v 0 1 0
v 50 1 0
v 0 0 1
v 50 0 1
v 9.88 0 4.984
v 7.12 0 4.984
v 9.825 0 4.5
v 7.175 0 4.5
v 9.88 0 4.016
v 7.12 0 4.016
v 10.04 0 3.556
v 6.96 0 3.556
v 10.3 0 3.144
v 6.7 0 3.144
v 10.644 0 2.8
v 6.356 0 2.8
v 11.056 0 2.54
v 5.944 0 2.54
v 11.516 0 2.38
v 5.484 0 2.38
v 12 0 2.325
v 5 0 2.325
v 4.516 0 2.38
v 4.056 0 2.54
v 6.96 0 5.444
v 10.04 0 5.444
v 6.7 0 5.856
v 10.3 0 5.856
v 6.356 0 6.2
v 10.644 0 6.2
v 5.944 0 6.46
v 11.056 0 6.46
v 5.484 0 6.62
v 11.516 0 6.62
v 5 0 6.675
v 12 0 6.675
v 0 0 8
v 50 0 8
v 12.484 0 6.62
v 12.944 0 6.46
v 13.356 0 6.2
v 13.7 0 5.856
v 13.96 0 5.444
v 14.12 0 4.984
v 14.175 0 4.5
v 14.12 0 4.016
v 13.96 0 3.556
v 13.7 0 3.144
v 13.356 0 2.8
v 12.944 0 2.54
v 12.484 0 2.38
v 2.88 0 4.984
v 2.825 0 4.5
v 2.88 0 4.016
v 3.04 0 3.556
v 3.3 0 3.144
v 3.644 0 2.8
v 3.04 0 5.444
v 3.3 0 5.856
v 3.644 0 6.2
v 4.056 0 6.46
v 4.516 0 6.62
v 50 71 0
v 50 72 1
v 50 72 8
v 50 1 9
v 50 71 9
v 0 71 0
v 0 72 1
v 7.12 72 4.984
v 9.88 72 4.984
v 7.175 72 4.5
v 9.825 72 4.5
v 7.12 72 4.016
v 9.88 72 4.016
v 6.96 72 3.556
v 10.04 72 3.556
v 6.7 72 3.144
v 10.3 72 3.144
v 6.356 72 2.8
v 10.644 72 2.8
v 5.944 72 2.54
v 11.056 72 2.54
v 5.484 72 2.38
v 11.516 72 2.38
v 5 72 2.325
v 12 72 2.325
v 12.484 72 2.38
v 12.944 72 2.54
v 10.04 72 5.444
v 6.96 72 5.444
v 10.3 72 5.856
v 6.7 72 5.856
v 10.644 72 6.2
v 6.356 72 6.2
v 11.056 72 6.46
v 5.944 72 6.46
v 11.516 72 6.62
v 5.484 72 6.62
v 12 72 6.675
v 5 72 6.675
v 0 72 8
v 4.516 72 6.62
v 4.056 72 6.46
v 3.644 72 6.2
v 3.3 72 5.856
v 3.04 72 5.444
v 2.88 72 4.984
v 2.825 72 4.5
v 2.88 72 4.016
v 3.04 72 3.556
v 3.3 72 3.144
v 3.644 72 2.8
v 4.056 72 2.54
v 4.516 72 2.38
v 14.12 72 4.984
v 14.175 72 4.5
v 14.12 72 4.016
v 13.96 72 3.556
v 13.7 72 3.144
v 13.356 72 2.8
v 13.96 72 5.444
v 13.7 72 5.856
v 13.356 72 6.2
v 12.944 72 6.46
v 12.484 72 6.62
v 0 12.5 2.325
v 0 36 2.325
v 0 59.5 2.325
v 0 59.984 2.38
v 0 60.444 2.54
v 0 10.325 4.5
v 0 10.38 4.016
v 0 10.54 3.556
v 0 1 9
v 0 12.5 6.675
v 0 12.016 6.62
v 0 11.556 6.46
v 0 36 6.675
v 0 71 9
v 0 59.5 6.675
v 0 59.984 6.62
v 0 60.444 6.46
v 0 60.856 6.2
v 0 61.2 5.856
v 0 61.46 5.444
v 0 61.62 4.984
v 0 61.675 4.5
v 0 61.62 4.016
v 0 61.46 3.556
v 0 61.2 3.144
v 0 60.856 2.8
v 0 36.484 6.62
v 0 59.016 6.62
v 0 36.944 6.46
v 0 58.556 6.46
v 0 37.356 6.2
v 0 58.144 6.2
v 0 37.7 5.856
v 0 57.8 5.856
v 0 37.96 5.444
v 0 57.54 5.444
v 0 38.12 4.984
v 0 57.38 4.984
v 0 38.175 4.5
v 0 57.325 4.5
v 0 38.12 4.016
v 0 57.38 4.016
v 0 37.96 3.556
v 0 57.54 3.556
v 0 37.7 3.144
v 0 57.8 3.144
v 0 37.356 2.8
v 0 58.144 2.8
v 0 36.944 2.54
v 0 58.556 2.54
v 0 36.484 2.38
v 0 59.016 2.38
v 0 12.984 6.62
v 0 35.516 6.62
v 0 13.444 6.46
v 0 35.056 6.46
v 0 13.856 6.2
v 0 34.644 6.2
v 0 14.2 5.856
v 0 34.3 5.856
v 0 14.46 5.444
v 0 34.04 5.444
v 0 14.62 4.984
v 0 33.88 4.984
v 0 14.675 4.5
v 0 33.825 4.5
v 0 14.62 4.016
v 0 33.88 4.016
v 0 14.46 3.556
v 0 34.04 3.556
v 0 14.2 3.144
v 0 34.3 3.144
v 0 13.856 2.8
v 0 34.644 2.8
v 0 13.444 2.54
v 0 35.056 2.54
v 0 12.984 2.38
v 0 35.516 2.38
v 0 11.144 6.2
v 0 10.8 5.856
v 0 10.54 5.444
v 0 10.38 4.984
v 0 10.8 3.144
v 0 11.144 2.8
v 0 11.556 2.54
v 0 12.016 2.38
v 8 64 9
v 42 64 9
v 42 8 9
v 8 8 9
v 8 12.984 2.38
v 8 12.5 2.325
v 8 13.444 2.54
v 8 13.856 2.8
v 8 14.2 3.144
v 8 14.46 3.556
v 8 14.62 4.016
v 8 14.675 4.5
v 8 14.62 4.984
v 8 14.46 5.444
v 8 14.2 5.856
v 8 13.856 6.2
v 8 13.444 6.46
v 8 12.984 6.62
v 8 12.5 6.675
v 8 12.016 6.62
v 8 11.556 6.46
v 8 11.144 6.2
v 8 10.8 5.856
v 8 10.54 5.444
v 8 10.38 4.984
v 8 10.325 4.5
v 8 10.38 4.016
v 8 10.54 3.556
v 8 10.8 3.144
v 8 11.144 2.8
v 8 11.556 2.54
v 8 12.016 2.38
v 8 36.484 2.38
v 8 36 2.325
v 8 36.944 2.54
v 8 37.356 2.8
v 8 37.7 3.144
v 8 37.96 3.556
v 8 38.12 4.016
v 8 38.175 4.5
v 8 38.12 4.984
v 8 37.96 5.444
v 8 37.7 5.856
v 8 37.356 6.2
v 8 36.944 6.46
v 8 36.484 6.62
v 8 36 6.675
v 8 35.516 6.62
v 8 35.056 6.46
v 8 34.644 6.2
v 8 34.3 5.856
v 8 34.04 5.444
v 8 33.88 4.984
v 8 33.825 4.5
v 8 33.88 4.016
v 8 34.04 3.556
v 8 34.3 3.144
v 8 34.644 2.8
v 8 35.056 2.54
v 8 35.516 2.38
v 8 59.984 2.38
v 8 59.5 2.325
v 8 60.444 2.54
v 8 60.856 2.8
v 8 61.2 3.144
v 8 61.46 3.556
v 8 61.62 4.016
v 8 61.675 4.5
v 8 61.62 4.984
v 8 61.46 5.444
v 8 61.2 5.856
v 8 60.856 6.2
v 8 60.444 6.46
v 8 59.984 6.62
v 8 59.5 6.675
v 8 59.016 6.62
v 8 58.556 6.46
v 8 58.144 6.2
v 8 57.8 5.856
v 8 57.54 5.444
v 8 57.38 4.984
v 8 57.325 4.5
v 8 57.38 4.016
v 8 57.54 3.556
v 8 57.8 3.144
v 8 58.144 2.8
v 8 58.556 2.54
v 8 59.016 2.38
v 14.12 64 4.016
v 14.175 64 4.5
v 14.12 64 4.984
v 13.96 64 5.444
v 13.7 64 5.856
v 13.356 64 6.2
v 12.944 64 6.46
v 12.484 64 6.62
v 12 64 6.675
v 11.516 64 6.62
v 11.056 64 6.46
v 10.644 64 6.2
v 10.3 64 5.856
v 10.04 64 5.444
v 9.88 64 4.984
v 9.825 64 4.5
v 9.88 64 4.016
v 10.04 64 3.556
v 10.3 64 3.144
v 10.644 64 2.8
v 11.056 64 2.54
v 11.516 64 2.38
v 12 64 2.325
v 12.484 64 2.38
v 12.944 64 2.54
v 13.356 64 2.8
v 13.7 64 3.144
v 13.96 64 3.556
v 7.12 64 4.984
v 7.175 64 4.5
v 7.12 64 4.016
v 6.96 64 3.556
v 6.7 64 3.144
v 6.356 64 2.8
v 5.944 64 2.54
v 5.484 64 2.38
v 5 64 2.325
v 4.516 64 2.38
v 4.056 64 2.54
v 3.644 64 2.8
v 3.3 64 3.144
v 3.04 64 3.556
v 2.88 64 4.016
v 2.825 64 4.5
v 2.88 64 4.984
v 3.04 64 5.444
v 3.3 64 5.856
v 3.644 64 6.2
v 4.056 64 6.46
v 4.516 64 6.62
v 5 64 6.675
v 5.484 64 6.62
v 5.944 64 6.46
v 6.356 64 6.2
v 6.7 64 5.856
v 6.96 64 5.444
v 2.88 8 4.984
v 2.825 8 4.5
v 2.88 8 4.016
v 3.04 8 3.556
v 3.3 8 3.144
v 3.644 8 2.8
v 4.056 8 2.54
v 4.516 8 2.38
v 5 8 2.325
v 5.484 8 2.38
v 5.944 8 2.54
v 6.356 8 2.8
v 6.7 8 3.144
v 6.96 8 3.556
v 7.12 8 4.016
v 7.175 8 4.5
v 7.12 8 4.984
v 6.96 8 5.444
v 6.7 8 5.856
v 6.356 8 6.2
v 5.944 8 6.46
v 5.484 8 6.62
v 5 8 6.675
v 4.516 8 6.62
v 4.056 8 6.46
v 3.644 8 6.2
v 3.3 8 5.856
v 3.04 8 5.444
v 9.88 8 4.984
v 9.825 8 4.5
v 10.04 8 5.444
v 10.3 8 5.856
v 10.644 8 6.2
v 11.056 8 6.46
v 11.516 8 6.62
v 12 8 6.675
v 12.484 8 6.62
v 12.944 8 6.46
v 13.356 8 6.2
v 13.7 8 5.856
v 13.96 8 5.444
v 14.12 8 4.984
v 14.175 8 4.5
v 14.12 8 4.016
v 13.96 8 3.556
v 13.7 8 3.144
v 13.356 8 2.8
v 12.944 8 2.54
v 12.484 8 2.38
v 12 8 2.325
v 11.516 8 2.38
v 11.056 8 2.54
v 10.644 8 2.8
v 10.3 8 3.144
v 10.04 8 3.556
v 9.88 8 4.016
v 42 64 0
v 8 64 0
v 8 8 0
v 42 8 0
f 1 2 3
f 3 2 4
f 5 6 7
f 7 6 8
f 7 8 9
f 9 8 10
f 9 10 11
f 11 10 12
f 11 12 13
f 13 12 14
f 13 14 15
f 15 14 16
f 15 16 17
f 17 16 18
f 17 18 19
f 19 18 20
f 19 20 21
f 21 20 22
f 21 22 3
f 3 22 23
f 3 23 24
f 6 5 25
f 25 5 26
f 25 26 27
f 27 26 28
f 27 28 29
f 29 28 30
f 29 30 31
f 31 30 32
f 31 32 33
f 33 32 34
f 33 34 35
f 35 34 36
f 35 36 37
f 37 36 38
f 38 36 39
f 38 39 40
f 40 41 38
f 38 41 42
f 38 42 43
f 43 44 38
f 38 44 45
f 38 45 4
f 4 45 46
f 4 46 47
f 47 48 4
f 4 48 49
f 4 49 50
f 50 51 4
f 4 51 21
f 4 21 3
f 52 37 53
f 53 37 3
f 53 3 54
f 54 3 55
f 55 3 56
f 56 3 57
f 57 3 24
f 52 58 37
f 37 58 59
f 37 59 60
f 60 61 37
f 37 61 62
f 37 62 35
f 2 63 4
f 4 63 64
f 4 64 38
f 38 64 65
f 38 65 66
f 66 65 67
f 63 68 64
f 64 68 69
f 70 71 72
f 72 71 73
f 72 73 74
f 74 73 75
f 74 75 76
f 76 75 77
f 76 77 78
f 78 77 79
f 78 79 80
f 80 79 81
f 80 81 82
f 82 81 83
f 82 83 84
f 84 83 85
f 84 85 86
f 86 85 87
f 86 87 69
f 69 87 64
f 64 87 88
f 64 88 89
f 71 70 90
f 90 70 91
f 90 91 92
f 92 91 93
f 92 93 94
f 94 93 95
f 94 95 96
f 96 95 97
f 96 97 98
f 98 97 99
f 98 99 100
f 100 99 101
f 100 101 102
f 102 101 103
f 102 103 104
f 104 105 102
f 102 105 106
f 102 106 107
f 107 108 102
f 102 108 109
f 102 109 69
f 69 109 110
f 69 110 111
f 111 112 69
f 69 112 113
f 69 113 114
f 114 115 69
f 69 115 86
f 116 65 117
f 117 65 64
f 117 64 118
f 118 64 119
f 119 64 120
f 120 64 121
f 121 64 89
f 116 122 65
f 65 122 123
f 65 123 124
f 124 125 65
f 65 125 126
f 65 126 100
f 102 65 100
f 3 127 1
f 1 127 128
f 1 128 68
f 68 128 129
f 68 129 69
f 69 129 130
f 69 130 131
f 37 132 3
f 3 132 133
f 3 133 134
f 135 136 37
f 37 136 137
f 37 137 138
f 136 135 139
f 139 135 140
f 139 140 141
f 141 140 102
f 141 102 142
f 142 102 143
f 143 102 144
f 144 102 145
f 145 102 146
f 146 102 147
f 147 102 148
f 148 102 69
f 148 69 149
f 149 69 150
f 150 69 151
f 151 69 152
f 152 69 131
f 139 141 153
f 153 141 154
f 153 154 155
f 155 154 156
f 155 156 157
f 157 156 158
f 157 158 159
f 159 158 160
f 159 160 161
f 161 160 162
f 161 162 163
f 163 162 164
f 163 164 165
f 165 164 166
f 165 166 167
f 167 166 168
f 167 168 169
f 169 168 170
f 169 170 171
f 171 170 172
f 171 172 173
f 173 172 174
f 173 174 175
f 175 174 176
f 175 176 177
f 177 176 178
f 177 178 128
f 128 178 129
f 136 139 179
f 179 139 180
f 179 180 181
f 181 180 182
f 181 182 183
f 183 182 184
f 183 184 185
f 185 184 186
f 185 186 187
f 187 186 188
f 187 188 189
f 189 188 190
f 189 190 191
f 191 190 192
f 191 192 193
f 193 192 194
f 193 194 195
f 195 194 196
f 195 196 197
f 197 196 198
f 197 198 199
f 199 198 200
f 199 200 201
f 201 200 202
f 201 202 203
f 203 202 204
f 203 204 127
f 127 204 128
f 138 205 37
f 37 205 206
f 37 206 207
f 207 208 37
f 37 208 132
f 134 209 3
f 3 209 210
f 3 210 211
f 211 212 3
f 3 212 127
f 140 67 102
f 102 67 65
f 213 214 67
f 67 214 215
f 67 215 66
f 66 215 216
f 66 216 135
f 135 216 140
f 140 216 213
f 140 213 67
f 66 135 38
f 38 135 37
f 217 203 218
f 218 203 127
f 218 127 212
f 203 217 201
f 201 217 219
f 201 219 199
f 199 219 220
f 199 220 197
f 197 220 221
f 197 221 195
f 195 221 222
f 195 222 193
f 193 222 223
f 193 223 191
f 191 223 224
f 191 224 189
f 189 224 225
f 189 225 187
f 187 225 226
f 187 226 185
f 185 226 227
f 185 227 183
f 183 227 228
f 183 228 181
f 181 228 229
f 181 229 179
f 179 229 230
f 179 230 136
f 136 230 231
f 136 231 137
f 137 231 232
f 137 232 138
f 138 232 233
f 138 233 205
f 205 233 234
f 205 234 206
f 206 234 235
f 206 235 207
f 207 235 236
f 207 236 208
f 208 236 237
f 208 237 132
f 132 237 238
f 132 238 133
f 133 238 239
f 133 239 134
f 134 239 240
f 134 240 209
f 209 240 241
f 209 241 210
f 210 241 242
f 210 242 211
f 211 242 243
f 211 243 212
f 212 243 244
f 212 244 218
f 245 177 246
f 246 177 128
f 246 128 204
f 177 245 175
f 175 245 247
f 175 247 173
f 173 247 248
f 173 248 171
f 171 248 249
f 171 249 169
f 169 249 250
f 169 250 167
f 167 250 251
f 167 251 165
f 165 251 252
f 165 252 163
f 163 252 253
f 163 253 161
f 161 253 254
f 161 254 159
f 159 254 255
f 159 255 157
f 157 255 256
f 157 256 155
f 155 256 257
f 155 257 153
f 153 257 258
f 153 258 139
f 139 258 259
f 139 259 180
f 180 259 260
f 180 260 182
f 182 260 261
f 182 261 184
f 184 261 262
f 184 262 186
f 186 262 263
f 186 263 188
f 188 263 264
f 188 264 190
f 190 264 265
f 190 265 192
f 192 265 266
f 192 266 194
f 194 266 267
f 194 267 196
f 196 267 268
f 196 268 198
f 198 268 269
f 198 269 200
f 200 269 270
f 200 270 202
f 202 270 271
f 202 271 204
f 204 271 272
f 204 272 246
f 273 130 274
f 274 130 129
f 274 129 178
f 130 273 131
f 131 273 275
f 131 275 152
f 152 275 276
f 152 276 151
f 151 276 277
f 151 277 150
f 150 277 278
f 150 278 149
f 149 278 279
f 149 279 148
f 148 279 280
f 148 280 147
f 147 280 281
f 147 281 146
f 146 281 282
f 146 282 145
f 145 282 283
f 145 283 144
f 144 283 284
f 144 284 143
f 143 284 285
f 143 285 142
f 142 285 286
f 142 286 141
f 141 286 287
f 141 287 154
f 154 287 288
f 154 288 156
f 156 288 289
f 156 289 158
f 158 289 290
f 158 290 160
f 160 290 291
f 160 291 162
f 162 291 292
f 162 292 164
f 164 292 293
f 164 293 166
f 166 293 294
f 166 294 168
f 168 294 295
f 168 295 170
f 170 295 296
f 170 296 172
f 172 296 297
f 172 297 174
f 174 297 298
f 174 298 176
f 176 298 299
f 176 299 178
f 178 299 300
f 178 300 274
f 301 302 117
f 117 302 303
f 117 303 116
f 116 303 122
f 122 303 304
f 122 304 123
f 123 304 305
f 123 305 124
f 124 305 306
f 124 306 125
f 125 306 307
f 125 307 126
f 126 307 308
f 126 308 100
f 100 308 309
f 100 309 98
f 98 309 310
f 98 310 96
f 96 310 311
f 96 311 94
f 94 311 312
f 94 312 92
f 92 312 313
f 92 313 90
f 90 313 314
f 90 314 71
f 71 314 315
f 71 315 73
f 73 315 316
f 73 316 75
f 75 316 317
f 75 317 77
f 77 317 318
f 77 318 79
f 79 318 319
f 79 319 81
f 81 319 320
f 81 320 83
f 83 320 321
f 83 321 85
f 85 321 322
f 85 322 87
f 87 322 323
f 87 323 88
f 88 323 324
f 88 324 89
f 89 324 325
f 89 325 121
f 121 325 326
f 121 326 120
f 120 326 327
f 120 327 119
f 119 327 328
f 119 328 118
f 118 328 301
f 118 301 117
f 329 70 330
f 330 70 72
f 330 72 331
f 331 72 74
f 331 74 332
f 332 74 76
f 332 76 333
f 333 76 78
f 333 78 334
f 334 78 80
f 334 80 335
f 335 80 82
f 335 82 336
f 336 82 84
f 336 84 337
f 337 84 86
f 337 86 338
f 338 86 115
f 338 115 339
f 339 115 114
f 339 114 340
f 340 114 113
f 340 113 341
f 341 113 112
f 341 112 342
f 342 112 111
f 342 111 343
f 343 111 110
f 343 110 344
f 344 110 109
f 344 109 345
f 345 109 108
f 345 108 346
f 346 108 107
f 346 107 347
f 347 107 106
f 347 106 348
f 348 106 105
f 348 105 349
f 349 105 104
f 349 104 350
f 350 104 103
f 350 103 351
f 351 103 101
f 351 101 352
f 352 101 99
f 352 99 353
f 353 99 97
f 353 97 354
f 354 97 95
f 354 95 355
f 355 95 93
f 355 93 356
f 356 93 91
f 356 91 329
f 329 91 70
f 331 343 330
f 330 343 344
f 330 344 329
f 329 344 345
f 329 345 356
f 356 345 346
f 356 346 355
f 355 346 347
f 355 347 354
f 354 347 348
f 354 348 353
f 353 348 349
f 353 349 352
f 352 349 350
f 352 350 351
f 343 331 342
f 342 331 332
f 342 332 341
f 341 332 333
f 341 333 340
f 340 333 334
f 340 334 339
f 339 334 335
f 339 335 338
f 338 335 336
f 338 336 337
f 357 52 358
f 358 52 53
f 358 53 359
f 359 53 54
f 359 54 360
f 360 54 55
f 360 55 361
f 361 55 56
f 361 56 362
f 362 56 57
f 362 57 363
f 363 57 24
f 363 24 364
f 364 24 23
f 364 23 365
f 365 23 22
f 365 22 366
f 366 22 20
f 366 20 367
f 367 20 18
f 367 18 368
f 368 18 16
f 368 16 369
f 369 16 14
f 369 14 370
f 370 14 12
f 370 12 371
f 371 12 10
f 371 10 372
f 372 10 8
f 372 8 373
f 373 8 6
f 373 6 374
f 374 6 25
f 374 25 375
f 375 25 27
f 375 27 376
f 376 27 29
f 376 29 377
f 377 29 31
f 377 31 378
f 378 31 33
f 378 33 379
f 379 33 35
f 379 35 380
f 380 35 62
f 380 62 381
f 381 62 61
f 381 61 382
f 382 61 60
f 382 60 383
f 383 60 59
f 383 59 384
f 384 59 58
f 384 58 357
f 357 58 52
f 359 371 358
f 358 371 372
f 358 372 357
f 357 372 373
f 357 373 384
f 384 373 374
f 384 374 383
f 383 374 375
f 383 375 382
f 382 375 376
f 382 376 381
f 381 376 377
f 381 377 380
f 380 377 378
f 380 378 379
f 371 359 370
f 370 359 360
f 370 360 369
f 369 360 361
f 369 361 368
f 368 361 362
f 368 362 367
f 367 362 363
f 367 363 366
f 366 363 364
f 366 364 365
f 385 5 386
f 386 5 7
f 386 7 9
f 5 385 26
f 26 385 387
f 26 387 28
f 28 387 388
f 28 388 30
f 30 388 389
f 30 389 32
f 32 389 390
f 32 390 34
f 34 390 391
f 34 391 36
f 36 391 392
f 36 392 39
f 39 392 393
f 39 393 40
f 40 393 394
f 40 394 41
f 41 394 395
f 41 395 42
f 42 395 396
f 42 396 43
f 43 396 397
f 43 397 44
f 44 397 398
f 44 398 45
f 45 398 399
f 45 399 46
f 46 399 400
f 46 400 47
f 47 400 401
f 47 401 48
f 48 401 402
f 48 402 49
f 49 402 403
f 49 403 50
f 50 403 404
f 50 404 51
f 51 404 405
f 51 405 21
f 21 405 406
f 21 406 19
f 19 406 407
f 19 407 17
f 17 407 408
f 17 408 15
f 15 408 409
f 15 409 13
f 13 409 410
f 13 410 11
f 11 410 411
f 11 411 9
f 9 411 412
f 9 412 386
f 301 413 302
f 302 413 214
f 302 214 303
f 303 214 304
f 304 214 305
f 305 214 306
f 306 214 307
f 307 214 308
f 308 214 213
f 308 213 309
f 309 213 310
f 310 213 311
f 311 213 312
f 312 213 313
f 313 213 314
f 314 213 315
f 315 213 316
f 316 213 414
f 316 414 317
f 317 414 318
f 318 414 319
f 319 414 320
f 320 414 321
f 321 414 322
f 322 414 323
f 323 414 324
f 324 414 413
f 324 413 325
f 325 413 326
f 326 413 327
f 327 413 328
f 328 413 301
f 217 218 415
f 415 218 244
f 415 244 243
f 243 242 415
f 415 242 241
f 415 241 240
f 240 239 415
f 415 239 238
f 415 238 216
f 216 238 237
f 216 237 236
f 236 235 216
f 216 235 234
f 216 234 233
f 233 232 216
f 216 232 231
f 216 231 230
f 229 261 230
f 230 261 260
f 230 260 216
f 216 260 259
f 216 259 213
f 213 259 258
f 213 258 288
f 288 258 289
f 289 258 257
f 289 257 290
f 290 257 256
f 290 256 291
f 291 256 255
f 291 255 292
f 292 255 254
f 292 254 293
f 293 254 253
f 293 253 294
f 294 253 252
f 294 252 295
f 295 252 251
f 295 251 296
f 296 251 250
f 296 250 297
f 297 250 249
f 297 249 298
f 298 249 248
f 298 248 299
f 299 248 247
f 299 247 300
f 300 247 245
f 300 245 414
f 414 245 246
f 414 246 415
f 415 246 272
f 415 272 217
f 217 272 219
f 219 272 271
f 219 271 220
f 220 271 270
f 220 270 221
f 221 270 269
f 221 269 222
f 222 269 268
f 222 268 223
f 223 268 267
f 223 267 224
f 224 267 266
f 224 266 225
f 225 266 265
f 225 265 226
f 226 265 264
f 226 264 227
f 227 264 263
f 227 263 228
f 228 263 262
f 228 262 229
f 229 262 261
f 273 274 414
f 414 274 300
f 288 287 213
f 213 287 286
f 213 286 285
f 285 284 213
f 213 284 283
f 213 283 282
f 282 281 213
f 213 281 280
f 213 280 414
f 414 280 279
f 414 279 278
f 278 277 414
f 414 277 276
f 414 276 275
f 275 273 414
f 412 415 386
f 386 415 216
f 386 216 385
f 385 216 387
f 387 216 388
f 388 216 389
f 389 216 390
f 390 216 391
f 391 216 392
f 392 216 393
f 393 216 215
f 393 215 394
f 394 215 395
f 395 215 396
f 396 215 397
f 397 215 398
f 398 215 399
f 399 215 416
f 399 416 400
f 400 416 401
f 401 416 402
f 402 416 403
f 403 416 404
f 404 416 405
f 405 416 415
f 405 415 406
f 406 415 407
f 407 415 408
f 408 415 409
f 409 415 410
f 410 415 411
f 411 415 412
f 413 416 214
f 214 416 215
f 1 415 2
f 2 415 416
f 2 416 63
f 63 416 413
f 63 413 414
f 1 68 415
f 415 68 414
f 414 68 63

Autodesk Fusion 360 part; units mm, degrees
sketch "Esquisse1" plane through (0, 0, 0) normal (0, 0, 1) x (1, 0, 0)
  line L0 (50, 0) -> (0, 0)
  line L1 (0, 0) -> (0, 72)
  line L2 (0, 72) -> (50, 72)
  line L3 (50, 72) -> (50, 0)
  line L4 (42, 64) -> (8, 64)
  line L5 (8, 64) -> (8, 8)
  line L6 (8, 8) -> (42, 8)
  line L7 (42, 8) -> (42, 64)
  dimension "d3" = 72
  dimension "d4" = 50
  dimension "d26" = 8
  dimension "d27" = 8
  dimension "d28" = 8
  dimension "d29" = 8
extrude "Extrusion1" add sketch "Esquisse1" along normal blind 9
sketch "Esquisse2" plane through (0, 0, 0) normal (0, -1, 0) x (1, 0, 0)
  line L0 (0, 0) -> (50, 0)
  line L1 (50, 9) -> (0, 9)
  line L2 (0, 9) -> (0, 0)
  line L3 (-5.7525, 4.5) -> (21.5406, 4.5) construction
  circle A0 centre (5, 4.5) radius 2.175
  circle A1 centre (12, 4.5) radius 2.175
  line L4 (50, 0) -> (50, 9)
  dimension "d7" = 4.35
  dimension "d8" = 7
  dimension "d9" = 4.5
  dimension "d10" = 5
extrude "Extrusion2" cut sketch "Esquisse2" against normal blind 8 contours A0 | A1
sketch "Esquisse3" plane through (0, 72, 0) normal (0, 1, 0) x (-1, 0, 0)
  line L0 (-50, 0) -> (0, 0)
  line L1 (0, 0) -> (0, 9)
  line L2 (0, 9) -> (-50, 9)
  line L3 (5.6122, 4.5) -> (-27.7174, 4.5) construction
  circle A0 centre (-12, 4.5) radius 2.175
  circle A1 centre (-5, 4.5) radius 2.175
  line L4 (-50, 9) -> (-50, 0)
  dimension "d13" = 4.5
  dimension "d14" = 7
  dimension "d15" = 5
  dimension "d16" = 4.35
extrude "Extrusion3" cut sketch "Esquisse3" against normal blind 8 contours A0 | A1
sketch "Esquisse4" plane through (0, 0, 0) normal (-1, 0, 0) x (0, 0, 1)
  line L0 (0, 72) -> (0, 0)
  line L1 (0, 0) -> (9, 0)
  line L2 (9, 0) -> (9, 72)
  line L3 (9, 72) -> (0, 72)
  line L4 (4.5, 76) -> (4.5, -2) construction
  circle A0 centre (4.5, 12.5) radius 2.175
  circle A1 centre (4.5, 59.5) radius 2.175
  circle A2 centre (4.5, 36) radius 2.175
  dimension "d19" = 4.35
  dimension "d20" = 12.5
  dimension "d21" = 12.5
  dimension "d22" = 23.5
  dimension "d25" = 4.5
extrude "Extrusion4" cut sketch "Esquisse4" against normal blind 8 contours A0 | A1 | A2
chamfer "Chanfrein1" distance 1 angle 45 4 edges at (25, 0, 9) (25, 72, 9) (25, 72, 0) (25, 0, 0)
equation "d21 = d20"
equation "d22 = ( 47 / 2 ) * 1 mm"
equation "d27 = d26"
equation "d28 = d26"
equation "d29 = d26"
